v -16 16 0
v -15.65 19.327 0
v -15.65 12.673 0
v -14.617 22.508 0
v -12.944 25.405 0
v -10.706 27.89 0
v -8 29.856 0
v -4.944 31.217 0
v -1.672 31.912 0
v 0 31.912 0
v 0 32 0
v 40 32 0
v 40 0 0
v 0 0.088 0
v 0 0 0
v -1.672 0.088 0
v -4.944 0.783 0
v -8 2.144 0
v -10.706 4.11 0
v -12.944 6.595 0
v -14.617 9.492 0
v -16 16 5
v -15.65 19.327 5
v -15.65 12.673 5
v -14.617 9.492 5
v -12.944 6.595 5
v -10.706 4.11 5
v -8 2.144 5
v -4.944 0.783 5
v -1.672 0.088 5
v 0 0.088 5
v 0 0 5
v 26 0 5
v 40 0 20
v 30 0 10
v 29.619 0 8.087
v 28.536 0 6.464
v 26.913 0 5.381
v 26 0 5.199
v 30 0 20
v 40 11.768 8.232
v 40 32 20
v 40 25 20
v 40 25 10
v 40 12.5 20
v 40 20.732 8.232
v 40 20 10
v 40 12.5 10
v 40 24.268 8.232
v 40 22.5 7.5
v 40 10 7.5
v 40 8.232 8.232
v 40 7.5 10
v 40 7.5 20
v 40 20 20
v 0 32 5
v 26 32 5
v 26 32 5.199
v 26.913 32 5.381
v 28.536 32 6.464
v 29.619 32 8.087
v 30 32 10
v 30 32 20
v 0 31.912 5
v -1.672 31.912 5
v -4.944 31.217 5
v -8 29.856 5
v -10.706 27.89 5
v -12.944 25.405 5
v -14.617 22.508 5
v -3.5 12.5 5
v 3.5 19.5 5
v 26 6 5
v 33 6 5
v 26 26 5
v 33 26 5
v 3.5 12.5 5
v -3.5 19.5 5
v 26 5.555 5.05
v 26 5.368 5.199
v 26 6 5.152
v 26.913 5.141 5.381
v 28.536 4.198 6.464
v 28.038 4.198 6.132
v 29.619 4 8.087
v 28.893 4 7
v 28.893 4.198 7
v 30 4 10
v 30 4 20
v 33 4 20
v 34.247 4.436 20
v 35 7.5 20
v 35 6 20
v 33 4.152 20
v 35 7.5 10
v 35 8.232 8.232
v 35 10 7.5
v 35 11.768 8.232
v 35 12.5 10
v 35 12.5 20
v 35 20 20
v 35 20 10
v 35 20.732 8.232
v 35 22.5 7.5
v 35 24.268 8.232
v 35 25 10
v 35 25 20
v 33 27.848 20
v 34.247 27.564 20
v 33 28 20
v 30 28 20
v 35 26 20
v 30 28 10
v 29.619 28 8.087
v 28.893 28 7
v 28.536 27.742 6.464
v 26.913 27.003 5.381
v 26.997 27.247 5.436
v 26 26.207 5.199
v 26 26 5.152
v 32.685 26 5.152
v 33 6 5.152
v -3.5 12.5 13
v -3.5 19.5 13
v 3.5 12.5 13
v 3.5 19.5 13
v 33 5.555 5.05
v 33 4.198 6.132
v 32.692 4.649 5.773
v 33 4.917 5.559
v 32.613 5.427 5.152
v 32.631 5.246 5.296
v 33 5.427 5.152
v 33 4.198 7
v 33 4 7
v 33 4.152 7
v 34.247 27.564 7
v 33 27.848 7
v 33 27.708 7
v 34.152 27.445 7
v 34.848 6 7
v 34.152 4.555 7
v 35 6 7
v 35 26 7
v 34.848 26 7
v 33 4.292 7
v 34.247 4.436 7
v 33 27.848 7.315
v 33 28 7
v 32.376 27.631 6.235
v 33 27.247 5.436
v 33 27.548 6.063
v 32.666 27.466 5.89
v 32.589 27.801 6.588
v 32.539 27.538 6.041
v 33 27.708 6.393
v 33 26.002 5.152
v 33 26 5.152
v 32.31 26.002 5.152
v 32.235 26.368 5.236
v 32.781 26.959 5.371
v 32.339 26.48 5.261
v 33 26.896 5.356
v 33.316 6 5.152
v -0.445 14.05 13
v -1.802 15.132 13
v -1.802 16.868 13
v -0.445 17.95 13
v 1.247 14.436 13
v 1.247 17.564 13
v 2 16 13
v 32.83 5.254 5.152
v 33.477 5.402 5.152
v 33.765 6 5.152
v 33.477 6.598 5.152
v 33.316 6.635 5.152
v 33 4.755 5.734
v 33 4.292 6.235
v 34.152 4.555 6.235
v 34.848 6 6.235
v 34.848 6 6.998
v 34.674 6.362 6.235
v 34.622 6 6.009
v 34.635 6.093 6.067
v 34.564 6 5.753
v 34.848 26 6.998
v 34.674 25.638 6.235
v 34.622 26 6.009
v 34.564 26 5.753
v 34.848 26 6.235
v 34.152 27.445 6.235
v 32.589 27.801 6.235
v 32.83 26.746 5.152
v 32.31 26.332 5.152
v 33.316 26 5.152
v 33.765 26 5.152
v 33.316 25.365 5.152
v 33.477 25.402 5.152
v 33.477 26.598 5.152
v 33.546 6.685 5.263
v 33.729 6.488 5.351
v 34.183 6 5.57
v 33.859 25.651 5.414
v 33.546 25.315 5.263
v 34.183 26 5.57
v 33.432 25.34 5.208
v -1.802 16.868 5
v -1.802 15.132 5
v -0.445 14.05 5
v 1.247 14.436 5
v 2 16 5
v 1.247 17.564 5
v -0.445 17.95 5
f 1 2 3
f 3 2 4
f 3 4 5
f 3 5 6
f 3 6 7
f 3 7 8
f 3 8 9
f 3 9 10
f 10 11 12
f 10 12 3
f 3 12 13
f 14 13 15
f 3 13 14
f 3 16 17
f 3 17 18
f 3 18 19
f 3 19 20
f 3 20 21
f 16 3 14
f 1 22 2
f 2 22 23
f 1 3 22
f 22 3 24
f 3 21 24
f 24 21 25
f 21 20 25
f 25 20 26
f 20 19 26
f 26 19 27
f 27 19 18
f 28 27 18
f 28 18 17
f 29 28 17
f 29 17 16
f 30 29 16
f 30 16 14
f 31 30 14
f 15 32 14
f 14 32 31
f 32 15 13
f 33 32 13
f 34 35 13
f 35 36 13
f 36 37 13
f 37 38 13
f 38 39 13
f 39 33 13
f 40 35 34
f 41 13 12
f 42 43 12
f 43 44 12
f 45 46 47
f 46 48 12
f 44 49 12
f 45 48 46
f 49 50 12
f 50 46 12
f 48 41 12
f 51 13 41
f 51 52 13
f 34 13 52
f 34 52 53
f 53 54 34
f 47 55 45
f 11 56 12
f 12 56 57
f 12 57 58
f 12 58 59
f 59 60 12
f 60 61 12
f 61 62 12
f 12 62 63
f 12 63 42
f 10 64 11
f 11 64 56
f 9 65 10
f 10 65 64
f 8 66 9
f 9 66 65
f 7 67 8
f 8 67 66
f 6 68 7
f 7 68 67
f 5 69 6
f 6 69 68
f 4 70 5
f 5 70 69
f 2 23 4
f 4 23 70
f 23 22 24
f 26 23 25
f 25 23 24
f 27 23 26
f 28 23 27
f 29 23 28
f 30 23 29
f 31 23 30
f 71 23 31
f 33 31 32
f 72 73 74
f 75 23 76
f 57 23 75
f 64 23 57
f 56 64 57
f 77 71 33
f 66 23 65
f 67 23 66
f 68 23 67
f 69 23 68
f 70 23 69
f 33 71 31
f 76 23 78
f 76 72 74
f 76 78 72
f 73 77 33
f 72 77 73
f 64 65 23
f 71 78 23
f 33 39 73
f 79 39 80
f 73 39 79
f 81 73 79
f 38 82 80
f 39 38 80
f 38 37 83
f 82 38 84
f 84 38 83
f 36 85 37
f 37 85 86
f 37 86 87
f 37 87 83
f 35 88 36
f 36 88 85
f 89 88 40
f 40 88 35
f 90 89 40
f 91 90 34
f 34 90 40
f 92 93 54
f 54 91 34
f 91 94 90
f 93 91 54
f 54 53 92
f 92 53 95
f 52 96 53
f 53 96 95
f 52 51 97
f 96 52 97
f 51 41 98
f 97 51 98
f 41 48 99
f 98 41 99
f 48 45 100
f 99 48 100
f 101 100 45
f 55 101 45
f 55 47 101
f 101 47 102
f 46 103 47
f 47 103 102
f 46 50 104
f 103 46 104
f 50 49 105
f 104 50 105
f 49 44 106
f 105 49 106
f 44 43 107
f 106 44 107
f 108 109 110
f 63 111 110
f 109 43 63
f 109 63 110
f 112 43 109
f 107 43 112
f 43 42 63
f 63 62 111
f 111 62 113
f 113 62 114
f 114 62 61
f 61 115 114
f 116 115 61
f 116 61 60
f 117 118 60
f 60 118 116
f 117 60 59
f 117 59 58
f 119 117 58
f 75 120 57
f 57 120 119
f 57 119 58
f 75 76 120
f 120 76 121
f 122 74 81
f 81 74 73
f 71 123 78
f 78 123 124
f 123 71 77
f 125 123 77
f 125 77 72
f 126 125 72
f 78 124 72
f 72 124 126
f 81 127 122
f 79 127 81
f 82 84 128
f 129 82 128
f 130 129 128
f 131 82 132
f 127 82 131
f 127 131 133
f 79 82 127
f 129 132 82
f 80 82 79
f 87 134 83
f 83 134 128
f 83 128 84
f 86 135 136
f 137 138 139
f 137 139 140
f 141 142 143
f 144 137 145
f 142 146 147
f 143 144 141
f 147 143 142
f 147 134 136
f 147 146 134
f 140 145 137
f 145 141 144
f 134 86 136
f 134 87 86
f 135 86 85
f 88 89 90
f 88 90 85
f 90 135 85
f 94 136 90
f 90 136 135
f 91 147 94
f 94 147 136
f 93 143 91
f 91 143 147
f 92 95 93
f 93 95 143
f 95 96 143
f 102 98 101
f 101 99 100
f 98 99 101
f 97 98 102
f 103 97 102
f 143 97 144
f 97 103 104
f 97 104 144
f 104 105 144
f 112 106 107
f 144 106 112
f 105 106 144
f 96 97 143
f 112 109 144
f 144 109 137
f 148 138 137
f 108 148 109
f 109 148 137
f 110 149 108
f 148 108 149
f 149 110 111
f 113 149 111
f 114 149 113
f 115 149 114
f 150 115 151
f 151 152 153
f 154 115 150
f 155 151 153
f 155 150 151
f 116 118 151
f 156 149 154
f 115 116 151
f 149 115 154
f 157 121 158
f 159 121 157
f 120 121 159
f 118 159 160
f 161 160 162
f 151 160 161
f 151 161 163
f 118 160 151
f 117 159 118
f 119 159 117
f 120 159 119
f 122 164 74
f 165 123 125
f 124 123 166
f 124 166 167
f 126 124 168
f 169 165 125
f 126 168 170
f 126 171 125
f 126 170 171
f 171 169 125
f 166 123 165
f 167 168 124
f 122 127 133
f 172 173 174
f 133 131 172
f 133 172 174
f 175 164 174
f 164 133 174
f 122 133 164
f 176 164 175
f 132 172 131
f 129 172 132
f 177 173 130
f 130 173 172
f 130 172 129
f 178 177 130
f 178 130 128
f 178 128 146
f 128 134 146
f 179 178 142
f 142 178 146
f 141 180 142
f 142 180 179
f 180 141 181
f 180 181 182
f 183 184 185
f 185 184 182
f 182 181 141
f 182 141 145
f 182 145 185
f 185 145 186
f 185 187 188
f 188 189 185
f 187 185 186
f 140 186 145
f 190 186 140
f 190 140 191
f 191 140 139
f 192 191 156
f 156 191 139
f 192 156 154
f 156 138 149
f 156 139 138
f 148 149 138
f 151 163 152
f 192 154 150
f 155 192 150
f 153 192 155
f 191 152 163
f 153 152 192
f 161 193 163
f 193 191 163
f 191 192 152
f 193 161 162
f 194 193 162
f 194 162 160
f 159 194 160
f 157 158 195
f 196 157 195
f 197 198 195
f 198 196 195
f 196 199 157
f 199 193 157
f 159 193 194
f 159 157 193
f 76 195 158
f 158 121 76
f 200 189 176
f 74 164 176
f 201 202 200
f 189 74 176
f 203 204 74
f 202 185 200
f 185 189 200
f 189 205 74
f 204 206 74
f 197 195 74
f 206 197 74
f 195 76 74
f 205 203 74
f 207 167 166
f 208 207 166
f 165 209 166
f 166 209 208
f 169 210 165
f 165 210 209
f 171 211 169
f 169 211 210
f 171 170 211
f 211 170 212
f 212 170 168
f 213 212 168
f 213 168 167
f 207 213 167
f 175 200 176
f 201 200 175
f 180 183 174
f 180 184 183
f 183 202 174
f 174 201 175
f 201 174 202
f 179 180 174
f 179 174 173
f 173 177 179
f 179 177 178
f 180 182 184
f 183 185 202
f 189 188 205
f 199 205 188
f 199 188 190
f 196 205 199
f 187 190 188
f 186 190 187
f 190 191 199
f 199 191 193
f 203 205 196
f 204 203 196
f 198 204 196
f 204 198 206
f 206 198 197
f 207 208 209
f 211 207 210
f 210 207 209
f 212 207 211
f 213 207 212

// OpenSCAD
use <MCAD/boxes.scad>

union() {
cube([35,32,5]);
translate([0,16,0]) cylinder(r=16,h=5);
difference() {
	translate([-3.5,16-(7/2),0]) cube([7,7,8+5]);
	translate([0,16,5]) cylinder(r=2,h=8);
}

difference() {
	translate([26,0,0]) cube([14,32,20]);
	translate([20,16,15]) roundedBox([20,50,20],5,false);
	translate([25,16,20]) roundedBox([20,32-8,30],2,false);
	translate([33,10,10]) slot();
	translate([33,22.5,10]) slot();
}
}

module slot(){
 translate([0,-2.5,0]) cube([10,5,20]);
 rotate([0,90,0]) cylinder(r=2.5,h=10);
}
